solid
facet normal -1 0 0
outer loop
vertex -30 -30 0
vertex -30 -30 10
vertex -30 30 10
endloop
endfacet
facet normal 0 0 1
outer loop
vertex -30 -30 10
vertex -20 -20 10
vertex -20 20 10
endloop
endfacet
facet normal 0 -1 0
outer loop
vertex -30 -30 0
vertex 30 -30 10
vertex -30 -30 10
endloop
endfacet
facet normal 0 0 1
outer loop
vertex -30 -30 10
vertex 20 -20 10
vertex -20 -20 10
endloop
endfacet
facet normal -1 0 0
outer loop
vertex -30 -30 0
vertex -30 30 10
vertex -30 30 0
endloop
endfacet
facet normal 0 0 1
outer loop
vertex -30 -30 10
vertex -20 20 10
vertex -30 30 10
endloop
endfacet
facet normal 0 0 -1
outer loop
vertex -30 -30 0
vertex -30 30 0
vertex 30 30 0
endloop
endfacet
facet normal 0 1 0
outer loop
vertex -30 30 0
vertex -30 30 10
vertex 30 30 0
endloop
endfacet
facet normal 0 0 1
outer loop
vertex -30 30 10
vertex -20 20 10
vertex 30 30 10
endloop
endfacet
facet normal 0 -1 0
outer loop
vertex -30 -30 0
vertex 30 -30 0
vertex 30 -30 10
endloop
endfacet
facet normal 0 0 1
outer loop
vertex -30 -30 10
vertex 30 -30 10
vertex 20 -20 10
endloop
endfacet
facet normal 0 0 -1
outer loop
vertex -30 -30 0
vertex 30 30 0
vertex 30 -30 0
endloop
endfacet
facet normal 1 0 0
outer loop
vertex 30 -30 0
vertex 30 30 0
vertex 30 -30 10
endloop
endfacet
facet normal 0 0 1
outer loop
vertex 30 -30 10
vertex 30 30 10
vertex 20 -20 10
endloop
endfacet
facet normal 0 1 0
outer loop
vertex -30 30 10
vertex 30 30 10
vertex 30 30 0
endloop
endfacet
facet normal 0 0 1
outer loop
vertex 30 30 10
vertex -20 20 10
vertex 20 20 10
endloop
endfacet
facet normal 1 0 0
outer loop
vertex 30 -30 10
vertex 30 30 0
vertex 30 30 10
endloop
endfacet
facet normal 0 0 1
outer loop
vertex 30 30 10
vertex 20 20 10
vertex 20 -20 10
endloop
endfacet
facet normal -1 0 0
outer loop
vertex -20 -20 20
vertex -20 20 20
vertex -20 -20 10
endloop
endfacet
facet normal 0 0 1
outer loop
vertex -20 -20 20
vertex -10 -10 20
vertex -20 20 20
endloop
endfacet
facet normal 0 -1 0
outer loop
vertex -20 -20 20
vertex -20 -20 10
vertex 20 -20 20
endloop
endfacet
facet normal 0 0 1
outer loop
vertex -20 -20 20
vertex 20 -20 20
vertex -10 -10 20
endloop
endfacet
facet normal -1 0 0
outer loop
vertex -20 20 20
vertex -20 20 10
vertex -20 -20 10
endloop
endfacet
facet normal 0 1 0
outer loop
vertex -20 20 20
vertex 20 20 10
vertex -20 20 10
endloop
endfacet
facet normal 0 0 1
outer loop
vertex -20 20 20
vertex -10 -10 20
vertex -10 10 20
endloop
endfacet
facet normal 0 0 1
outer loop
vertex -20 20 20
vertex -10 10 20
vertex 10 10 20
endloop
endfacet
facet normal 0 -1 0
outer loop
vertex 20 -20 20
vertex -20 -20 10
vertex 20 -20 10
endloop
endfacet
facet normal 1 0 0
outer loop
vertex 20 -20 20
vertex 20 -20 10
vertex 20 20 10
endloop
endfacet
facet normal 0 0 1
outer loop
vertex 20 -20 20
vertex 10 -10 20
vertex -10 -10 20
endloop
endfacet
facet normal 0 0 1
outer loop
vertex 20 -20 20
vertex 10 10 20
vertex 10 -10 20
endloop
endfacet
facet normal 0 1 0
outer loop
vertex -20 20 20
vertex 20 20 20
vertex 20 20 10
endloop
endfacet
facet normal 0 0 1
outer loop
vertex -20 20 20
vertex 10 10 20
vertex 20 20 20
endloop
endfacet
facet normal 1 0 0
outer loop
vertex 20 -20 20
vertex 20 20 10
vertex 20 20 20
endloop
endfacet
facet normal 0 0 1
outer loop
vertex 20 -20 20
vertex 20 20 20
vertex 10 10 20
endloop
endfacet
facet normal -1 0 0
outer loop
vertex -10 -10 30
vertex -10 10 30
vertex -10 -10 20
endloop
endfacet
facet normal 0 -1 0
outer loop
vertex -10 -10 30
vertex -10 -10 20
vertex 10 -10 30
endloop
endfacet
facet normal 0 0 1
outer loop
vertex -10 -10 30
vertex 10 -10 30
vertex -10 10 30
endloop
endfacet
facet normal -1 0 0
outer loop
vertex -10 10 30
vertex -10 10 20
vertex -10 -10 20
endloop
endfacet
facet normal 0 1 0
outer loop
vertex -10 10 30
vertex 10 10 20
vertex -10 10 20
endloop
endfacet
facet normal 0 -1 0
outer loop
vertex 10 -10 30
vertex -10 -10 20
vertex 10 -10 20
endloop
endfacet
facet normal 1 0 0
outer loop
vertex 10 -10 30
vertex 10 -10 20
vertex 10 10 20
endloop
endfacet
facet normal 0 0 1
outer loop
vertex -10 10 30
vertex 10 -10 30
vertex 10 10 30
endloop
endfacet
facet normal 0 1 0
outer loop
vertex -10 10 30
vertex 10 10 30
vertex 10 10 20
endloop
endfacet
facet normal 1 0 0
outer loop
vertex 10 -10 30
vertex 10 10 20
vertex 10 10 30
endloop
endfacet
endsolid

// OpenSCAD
translate([0,0,5]) cube([60,60,10], center=true);
translate([0,0,15]) cube([40,40,10], center=true);
translate([0,0,25]) cube([20,20,10], center=true);
